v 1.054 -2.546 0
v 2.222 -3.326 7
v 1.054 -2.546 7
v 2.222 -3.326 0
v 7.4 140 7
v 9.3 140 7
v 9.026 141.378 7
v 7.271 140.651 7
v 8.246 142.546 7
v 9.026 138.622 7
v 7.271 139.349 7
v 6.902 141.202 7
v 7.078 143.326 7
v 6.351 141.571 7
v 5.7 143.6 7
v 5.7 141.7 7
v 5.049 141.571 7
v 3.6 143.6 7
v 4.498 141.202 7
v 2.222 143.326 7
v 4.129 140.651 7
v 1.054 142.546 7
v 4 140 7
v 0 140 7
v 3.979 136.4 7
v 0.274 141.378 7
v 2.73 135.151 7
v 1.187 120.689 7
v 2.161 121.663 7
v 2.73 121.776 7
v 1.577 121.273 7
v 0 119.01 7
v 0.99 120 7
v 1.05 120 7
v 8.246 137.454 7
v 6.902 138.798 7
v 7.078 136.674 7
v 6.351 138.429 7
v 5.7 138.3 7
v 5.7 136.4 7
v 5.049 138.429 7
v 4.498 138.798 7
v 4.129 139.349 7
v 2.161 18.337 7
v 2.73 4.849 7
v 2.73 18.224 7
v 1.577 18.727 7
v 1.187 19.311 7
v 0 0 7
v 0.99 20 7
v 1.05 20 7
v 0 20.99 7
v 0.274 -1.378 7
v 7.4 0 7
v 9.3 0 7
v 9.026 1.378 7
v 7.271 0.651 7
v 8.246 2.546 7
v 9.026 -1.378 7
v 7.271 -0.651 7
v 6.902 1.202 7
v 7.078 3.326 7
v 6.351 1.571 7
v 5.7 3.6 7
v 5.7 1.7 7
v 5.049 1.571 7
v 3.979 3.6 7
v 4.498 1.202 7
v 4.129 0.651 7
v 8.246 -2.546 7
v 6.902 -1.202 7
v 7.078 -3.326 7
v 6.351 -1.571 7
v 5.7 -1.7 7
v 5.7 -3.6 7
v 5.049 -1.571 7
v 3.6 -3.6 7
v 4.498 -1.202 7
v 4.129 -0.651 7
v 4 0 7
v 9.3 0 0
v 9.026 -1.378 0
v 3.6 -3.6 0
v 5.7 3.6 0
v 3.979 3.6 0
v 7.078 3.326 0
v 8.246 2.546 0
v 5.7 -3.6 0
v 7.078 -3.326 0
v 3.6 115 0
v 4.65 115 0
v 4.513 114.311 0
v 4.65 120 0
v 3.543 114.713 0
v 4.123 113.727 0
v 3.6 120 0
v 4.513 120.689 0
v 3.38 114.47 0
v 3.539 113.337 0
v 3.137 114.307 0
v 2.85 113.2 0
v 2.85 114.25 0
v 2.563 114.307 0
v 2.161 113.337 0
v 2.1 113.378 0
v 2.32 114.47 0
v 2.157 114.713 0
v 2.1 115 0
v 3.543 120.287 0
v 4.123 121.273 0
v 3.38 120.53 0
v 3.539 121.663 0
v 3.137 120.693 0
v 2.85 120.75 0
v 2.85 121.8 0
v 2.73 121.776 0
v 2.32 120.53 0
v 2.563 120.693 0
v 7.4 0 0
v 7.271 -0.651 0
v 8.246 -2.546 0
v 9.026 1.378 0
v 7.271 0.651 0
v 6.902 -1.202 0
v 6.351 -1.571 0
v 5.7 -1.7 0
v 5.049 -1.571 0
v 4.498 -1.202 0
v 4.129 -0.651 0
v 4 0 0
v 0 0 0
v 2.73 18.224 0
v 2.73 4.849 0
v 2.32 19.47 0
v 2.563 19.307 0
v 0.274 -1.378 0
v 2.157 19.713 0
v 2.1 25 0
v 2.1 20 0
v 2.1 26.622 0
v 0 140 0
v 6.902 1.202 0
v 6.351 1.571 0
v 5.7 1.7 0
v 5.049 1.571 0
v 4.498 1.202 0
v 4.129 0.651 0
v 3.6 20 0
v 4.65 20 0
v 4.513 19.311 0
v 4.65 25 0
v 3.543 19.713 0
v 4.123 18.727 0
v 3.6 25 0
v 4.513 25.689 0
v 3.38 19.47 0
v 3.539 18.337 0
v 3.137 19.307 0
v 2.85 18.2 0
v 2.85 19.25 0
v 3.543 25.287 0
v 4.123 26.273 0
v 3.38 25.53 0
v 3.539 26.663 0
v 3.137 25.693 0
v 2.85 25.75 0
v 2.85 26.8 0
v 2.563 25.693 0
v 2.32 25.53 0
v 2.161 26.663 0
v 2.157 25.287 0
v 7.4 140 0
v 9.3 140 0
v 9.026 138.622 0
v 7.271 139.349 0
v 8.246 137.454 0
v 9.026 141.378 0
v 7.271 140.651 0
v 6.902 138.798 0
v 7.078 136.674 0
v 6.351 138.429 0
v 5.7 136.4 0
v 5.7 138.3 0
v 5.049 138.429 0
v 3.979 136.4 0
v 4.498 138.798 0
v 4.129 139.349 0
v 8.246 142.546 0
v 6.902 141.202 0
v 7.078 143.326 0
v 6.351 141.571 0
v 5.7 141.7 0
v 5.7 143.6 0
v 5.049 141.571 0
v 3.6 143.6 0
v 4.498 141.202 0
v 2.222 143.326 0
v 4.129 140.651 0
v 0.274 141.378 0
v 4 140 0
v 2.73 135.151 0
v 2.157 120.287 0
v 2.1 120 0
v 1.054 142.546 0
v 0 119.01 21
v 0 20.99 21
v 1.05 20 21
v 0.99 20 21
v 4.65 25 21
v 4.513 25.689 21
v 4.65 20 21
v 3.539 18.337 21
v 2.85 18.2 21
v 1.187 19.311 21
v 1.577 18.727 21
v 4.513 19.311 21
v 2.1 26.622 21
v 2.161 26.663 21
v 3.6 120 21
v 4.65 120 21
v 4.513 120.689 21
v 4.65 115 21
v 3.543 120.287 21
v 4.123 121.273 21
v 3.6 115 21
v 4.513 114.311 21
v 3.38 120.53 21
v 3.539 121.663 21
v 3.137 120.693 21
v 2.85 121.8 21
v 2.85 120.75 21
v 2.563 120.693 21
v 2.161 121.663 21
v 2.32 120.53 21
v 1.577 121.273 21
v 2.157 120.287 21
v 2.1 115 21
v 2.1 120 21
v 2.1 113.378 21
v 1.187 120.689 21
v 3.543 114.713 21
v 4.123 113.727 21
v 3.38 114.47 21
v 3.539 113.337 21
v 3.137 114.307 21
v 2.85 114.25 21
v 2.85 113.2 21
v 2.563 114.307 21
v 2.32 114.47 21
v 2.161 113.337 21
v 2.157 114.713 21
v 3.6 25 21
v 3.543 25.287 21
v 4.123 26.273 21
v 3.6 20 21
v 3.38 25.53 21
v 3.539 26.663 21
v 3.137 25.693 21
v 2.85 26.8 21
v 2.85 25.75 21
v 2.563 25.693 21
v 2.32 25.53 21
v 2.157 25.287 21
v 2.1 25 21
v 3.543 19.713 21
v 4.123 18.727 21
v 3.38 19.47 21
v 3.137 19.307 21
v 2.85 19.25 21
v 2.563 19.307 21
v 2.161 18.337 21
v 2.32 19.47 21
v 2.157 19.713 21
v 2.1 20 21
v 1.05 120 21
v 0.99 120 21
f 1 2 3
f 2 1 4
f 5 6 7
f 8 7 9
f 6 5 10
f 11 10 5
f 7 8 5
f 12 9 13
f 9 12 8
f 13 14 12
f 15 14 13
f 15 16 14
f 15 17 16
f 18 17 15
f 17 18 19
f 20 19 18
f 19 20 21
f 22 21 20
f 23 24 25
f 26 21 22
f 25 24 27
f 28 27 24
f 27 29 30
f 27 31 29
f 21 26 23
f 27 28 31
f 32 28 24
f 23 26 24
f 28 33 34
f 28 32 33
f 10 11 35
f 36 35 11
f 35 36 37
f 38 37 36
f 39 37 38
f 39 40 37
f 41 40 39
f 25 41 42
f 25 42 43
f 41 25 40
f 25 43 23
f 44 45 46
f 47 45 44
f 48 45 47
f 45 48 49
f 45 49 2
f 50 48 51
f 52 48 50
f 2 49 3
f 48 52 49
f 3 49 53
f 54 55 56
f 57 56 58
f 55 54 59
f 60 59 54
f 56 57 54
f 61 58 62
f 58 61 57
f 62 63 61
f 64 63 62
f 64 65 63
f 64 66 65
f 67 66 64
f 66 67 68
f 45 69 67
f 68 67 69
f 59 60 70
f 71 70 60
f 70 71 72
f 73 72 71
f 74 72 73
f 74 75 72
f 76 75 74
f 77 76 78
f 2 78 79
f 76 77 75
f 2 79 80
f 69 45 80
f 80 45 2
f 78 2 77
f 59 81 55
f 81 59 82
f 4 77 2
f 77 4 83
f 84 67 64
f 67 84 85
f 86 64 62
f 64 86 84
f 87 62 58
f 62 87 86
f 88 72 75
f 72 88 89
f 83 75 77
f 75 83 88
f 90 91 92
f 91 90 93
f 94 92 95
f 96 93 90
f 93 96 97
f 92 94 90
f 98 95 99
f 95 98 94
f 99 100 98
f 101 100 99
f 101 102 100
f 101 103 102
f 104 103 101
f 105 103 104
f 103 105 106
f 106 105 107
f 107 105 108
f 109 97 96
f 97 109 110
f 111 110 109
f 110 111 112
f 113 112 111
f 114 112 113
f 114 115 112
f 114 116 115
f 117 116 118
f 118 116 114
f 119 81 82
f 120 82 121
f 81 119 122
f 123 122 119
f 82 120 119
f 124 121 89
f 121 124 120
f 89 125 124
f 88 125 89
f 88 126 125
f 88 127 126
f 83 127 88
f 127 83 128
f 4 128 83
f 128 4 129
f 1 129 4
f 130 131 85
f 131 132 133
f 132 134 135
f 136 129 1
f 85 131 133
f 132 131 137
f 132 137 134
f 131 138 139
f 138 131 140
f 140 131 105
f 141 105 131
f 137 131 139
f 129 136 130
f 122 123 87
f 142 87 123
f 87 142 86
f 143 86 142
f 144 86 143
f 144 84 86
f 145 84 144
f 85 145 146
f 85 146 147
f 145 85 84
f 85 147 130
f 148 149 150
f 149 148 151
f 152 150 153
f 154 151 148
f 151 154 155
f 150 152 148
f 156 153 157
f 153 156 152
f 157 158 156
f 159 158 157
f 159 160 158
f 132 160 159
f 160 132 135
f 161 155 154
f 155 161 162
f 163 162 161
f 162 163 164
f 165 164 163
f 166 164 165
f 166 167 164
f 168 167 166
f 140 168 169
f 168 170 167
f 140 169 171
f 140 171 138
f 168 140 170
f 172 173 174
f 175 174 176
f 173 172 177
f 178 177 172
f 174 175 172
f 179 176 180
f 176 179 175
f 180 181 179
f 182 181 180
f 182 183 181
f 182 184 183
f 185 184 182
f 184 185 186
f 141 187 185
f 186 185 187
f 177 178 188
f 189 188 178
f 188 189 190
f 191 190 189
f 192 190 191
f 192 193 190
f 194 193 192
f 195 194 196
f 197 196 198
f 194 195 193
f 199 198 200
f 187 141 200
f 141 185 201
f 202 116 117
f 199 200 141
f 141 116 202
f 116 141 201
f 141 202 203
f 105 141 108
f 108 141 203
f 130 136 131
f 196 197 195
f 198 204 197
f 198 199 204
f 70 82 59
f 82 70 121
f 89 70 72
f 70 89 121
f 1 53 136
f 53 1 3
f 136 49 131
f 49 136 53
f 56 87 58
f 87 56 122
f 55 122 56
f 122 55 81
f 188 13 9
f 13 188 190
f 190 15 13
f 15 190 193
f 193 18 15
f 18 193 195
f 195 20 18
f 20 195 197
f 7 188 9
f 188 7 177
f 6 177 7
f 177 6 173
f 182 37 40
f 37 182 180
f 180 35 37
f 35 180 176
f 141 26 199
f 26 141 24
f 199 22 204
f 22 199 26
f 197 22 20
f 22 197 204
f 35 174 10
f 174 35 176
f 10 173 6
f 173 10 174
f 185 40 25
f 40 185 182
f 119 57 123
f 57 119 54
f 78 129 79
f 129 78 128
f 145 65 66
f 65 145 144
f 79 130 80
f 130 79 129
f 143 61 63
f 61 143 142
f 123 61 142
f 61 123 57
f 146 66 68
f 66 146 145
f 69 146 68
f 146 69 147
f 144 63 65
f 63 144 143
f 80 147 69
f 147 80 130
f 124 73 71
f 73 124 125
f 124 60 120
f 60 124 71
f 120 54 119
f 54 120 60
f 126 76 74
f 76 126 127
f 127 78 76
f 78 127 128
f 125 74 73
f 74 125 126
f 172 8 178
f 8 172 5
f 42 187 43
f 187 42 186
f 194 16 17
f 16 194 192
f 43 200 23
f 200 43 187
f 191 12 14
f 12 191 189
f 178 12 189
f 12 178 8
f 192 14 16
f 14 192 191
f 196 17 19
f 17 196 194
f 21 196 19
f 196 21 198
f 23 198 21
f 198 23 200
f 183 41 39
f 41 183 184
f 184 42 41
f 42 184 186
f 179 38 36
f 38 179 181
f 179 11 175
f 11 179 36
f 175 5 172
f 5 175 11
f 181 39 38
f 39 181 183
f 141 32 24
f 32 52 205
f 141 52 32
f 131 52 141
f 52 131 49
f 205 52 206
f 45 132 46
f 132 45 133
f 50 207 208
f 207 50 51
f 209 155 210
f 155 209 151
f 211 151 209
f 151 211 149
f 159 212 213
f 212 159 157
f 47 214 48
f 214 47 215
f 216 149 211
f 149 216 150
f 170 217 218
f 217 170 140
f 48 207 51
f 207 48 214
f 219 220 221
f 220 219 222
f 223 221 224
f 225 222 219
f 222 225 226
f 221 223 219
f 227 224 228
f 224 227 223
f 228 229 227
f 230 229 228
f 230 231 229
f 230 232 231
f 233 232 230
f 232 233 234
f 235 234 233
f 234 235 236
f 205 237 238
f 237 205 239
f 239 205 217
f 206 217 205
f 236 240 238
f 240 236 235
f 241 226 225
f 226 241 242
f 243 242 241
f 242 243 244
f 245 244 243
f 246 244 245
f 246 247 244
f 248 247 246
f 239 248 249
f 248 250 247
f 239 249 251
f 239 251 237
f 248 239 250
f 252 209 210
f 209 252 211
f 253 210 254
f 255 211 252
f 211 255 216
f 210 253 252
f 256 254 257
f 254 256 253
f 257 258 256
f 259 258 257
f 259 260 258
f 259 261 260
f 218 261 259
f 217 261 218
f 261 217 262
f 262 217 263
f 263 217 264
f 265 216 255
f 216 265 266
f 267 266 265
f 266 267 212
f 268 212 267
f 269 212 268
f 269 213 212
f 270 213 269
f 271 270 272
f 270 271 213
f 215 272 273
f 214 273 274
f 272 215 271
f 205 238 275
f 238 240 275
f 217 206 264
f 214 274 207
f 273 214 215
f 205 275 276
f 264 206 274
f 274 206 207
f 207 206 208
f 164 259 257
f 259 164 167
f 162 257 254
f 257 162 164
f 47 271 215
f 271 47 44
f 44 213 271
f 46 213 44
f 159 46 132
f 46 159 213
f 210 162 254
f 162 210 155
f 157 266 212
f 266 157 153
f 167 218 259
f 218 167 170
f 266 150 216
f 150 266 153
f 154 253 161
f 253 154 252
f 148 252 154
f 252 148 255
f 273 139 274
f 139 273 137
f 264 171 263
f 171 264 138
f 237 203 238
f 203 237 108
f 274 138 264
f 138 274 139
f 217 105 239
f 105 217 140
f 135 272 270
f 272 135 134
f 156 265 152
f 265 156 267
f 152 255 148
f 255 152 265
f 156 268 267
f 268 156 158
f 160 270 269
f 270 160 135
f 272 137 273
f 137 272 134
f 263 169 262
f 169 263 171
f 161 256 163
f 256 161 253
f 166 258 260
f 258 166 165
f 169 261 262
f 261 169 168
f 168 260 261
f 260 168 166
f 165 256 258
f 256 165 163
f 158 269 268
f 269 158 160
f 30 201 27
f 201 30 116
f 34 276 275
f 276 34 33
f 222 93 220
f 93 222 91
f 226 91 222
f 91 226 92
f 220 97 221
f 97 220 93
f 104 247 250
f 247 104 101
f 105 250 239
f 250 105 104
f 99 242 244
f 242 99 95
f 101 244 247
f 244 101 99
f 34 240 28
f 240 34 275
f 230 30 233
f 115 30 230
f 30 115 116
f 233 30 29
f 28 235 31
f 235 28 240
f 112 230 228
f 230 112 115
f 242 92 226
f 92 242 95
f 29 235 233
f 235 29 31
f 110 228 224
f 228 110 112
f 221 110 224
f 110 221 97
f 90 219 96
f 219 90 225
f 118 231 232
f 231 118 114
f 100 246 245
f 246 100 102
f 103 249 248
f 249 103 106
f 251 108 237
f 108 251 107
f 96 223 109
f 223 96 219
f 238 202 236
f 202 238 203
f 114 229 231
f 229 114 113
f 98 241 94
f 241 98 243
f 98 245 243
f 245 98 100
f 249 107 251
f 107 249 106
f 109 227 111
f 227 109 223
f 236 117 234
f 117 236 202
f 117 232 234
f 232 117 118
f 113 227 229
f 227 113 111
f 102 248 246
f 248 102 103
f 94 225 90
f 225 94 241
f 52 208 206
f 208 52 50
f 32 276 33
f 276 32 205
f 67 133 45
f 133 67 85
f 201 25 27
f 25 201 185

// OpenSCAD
// file: Cubo.scad
// -----------------
// module cubo
// GPL v2.0
// yvoz.lg@gmail.com
// -----------------


// exemples ----

cubo([10,10,5], [1,2,3,4,5,6,7,8,9,10,11,12], 1.5);

translate([15, 0, 0]){
	difference(){
		cubo([10,20,5], [2,3], 3);
		translate([5,10,-1]) cylinder(r=2, h=7, $fn=12);
	}
}

translate([-15, 0, 0]){
	difference(){
		cube([10,20,15]);
		translate([3,3,3]) cubo([10,20,50], [1,5], 3);
	}
}

// ------------

module cubo(dim, cro, a){

	diago = sqrt(pow(a,2)+pow(a,2));
	difference(){
		cube(dim);
		
		for(i=cro){
			//x
			if(i==1){
				translate([-1, 0, -diago/2])
				rotate([45, 0, 0])
				cube([dim.x+2, a, a]);
			}
			if(i==2){
				translate([-1, 0, dim.z-diago/2])
				rotate([45, 0, 0])
				cube([dim.x+2, a, a]);
			}
			if(i==3){
				translate([-1, dim.y, dim.z-diago/2])
				rotate([45, 0, 0])
				cube([dim.x+2, a, a]);
			}
			if(i==4){
				translate([-1, dim.y, -diago/2])
				rotate([45, 0, 0])
				cube([dim.x+2, a, a]);
			}
			//y
			if(i==5){
				translate([-diago/2, -1, 0])
				rotate([0, 45, 0])
				cube([a, dim.y+2, a]);
			}
			if(i==6){
				translate([dim.x-diago/2, -1, 0])
				rotate([0, 45, 0])
				cube([a, dim.y+2, a]);
			}
			if(i==7){
				translate([dim.x-diago/2, -1, dim.z])
				rotate([0, 45, 0])
				cube([a, dim.y+2, a]);
			}
			if(i==8){
				translate([-diago/2, -1, dim.z])
				rotate([0, 45, 0])
				cube([a, dim.y+2, a]);
			}
			//z
			if(i==9){
				translate([0, -diago/2, -1])
				rotate([0, 0, 45])
				cube([a, a, dim.z+2]);
			}
			if(i==10){
				translate([0, dim.y-diago/2, -1])
				rotate([0, 0, 45])
				cube([a, a, dim.z+2]);
			}
			if(i==11){
				translate([dim.x, dim.y-diago/2, -1])
				rotate([0, 0, 45])
				cube([a, a, dim.z+2]);
			}
			if(i==12){
				translate([dim.x, -diago/2, -1])
				rotate([0, 0, 45])
				cube([a, a, dim.z+2]);
			}
		}
	}
}
// file: Hexa.scad
// include <Hexa.scad>;

m3h = 2.4; 		// hauteur
m3k = 5.5; 		// plat a plat
m3e = 6.3; 		// pointe a pointe
m3r = m3e/2; 	// rayon pointe a pointe
m3p = 0.5; 		// pas

m4h = 3.2;
m4k = 7;
m4e = 8.08;
m4r = m4e/2;
m4p = 0.7;

m5h = 4.7;
m5k = 8;
m5e = 9.23;
m5r = m5e/2;
m5p = 0.8;

m6h = 5.2;
m6k = 10;
m6e = 11.54;
m6r = m6e/2;
m6p = 1.0;

m8h = 6.8;
m8k = 13;
m8e = 15.01;
m8r = m8e/2;
m8p = 1.25;

m10h = 8.4;
m10k = 17;
m10e = 19.62;
m10r = m10e/2;
m10p = 1.5;

m12h = 10.8;
m12k = 19;
m12e = 21.93;
m12r = m12e/2;
m12p = 1.75;

coef = 2/sqrt(3);
echo(coef);

module m3(jk=0, jh=0, jvis=0){
    d = m3k * coef;
    cylinder(r=d/2+jk, h=m3h+jh, $fn=6);
    if(jvis != 0){
        translate([0,0,-30]) cylinder(r=3/2+jvis, h=60, $fn=12);
    }
}
// main file
// CREPP 2019
// GPL V3.0
// www.crepp.org - yvoz.lg@gmail.com

// include <Pqp_BoiteCadre.scad>;
ty = (143+137)/2; // distance entre trous de plaque

include <Hexa.scad>;
use <Cubo.scad>;

ep = 0.3*7; // 2.1
tz = 7;

ix = 1.5;
iy = 5;

my = 20;

$fn = 4*4;

difference(){
    union(){
        hull(){
            translate([ep+1.5,0,0]) cylinder(r=1.5+ep, h=tz);
            translate([ep+1.5+ep,0,0]) cylinder(r=1.5+ep, h=tz);
        }
        hull(){
            translate([ep+1.5,ty,0]) cylinder(r=1.5+ep, h=tz);
            translate([ep+1.5+ep,ty,0]) cylinder(r=1.5+ep, h=tz);
        }
    }
    translate([ep+1.5+ep,0,0]) cylinder(r=1.7, h=tz+2);
    translate([ep+1.5+ep,ty,0]) cylinder(r=1.7, h=tz+2);
}


translate([0,my,0]) cubo([ep,ty-my*2,tz*3], [9,10], 1.4);
translate([0,my,0]) cube([ep,ty-my*2,tz]);

// chanfreins
cubo([ep+ep-0.2,1.5+ep+ep,tz], [11], 3);
translate([0,ty-(1.5+ep+ep),0]) cubo([ep+ep-0.2,1.5+ep+ep,tz], [12], 3);

module rizlan(myy) difference(){
    union(){
        cube([ep*1.3,my,tz]);
        hull(){
            translate([ep+ix/2,myy,0]) cylinder(r=ix/2+ep*0.5, h=tz*3);
            translate([ep+ix/2,myy+iy,0]) cylinder(r=ix/2+ep*0.5, h=tz*3);
        }
    }
    hull(){
        translate([ep+ix/2,myy,0]) cylinder(r=ix/2, h=tz*3+3);
        translate([ep+ix/2,myy+iy,0]) cylinder(r=ix/2, h=tz*3+3);
    }
}

rizlan(my);
translate([0,ty-my,0]) rizlan(-iy);
